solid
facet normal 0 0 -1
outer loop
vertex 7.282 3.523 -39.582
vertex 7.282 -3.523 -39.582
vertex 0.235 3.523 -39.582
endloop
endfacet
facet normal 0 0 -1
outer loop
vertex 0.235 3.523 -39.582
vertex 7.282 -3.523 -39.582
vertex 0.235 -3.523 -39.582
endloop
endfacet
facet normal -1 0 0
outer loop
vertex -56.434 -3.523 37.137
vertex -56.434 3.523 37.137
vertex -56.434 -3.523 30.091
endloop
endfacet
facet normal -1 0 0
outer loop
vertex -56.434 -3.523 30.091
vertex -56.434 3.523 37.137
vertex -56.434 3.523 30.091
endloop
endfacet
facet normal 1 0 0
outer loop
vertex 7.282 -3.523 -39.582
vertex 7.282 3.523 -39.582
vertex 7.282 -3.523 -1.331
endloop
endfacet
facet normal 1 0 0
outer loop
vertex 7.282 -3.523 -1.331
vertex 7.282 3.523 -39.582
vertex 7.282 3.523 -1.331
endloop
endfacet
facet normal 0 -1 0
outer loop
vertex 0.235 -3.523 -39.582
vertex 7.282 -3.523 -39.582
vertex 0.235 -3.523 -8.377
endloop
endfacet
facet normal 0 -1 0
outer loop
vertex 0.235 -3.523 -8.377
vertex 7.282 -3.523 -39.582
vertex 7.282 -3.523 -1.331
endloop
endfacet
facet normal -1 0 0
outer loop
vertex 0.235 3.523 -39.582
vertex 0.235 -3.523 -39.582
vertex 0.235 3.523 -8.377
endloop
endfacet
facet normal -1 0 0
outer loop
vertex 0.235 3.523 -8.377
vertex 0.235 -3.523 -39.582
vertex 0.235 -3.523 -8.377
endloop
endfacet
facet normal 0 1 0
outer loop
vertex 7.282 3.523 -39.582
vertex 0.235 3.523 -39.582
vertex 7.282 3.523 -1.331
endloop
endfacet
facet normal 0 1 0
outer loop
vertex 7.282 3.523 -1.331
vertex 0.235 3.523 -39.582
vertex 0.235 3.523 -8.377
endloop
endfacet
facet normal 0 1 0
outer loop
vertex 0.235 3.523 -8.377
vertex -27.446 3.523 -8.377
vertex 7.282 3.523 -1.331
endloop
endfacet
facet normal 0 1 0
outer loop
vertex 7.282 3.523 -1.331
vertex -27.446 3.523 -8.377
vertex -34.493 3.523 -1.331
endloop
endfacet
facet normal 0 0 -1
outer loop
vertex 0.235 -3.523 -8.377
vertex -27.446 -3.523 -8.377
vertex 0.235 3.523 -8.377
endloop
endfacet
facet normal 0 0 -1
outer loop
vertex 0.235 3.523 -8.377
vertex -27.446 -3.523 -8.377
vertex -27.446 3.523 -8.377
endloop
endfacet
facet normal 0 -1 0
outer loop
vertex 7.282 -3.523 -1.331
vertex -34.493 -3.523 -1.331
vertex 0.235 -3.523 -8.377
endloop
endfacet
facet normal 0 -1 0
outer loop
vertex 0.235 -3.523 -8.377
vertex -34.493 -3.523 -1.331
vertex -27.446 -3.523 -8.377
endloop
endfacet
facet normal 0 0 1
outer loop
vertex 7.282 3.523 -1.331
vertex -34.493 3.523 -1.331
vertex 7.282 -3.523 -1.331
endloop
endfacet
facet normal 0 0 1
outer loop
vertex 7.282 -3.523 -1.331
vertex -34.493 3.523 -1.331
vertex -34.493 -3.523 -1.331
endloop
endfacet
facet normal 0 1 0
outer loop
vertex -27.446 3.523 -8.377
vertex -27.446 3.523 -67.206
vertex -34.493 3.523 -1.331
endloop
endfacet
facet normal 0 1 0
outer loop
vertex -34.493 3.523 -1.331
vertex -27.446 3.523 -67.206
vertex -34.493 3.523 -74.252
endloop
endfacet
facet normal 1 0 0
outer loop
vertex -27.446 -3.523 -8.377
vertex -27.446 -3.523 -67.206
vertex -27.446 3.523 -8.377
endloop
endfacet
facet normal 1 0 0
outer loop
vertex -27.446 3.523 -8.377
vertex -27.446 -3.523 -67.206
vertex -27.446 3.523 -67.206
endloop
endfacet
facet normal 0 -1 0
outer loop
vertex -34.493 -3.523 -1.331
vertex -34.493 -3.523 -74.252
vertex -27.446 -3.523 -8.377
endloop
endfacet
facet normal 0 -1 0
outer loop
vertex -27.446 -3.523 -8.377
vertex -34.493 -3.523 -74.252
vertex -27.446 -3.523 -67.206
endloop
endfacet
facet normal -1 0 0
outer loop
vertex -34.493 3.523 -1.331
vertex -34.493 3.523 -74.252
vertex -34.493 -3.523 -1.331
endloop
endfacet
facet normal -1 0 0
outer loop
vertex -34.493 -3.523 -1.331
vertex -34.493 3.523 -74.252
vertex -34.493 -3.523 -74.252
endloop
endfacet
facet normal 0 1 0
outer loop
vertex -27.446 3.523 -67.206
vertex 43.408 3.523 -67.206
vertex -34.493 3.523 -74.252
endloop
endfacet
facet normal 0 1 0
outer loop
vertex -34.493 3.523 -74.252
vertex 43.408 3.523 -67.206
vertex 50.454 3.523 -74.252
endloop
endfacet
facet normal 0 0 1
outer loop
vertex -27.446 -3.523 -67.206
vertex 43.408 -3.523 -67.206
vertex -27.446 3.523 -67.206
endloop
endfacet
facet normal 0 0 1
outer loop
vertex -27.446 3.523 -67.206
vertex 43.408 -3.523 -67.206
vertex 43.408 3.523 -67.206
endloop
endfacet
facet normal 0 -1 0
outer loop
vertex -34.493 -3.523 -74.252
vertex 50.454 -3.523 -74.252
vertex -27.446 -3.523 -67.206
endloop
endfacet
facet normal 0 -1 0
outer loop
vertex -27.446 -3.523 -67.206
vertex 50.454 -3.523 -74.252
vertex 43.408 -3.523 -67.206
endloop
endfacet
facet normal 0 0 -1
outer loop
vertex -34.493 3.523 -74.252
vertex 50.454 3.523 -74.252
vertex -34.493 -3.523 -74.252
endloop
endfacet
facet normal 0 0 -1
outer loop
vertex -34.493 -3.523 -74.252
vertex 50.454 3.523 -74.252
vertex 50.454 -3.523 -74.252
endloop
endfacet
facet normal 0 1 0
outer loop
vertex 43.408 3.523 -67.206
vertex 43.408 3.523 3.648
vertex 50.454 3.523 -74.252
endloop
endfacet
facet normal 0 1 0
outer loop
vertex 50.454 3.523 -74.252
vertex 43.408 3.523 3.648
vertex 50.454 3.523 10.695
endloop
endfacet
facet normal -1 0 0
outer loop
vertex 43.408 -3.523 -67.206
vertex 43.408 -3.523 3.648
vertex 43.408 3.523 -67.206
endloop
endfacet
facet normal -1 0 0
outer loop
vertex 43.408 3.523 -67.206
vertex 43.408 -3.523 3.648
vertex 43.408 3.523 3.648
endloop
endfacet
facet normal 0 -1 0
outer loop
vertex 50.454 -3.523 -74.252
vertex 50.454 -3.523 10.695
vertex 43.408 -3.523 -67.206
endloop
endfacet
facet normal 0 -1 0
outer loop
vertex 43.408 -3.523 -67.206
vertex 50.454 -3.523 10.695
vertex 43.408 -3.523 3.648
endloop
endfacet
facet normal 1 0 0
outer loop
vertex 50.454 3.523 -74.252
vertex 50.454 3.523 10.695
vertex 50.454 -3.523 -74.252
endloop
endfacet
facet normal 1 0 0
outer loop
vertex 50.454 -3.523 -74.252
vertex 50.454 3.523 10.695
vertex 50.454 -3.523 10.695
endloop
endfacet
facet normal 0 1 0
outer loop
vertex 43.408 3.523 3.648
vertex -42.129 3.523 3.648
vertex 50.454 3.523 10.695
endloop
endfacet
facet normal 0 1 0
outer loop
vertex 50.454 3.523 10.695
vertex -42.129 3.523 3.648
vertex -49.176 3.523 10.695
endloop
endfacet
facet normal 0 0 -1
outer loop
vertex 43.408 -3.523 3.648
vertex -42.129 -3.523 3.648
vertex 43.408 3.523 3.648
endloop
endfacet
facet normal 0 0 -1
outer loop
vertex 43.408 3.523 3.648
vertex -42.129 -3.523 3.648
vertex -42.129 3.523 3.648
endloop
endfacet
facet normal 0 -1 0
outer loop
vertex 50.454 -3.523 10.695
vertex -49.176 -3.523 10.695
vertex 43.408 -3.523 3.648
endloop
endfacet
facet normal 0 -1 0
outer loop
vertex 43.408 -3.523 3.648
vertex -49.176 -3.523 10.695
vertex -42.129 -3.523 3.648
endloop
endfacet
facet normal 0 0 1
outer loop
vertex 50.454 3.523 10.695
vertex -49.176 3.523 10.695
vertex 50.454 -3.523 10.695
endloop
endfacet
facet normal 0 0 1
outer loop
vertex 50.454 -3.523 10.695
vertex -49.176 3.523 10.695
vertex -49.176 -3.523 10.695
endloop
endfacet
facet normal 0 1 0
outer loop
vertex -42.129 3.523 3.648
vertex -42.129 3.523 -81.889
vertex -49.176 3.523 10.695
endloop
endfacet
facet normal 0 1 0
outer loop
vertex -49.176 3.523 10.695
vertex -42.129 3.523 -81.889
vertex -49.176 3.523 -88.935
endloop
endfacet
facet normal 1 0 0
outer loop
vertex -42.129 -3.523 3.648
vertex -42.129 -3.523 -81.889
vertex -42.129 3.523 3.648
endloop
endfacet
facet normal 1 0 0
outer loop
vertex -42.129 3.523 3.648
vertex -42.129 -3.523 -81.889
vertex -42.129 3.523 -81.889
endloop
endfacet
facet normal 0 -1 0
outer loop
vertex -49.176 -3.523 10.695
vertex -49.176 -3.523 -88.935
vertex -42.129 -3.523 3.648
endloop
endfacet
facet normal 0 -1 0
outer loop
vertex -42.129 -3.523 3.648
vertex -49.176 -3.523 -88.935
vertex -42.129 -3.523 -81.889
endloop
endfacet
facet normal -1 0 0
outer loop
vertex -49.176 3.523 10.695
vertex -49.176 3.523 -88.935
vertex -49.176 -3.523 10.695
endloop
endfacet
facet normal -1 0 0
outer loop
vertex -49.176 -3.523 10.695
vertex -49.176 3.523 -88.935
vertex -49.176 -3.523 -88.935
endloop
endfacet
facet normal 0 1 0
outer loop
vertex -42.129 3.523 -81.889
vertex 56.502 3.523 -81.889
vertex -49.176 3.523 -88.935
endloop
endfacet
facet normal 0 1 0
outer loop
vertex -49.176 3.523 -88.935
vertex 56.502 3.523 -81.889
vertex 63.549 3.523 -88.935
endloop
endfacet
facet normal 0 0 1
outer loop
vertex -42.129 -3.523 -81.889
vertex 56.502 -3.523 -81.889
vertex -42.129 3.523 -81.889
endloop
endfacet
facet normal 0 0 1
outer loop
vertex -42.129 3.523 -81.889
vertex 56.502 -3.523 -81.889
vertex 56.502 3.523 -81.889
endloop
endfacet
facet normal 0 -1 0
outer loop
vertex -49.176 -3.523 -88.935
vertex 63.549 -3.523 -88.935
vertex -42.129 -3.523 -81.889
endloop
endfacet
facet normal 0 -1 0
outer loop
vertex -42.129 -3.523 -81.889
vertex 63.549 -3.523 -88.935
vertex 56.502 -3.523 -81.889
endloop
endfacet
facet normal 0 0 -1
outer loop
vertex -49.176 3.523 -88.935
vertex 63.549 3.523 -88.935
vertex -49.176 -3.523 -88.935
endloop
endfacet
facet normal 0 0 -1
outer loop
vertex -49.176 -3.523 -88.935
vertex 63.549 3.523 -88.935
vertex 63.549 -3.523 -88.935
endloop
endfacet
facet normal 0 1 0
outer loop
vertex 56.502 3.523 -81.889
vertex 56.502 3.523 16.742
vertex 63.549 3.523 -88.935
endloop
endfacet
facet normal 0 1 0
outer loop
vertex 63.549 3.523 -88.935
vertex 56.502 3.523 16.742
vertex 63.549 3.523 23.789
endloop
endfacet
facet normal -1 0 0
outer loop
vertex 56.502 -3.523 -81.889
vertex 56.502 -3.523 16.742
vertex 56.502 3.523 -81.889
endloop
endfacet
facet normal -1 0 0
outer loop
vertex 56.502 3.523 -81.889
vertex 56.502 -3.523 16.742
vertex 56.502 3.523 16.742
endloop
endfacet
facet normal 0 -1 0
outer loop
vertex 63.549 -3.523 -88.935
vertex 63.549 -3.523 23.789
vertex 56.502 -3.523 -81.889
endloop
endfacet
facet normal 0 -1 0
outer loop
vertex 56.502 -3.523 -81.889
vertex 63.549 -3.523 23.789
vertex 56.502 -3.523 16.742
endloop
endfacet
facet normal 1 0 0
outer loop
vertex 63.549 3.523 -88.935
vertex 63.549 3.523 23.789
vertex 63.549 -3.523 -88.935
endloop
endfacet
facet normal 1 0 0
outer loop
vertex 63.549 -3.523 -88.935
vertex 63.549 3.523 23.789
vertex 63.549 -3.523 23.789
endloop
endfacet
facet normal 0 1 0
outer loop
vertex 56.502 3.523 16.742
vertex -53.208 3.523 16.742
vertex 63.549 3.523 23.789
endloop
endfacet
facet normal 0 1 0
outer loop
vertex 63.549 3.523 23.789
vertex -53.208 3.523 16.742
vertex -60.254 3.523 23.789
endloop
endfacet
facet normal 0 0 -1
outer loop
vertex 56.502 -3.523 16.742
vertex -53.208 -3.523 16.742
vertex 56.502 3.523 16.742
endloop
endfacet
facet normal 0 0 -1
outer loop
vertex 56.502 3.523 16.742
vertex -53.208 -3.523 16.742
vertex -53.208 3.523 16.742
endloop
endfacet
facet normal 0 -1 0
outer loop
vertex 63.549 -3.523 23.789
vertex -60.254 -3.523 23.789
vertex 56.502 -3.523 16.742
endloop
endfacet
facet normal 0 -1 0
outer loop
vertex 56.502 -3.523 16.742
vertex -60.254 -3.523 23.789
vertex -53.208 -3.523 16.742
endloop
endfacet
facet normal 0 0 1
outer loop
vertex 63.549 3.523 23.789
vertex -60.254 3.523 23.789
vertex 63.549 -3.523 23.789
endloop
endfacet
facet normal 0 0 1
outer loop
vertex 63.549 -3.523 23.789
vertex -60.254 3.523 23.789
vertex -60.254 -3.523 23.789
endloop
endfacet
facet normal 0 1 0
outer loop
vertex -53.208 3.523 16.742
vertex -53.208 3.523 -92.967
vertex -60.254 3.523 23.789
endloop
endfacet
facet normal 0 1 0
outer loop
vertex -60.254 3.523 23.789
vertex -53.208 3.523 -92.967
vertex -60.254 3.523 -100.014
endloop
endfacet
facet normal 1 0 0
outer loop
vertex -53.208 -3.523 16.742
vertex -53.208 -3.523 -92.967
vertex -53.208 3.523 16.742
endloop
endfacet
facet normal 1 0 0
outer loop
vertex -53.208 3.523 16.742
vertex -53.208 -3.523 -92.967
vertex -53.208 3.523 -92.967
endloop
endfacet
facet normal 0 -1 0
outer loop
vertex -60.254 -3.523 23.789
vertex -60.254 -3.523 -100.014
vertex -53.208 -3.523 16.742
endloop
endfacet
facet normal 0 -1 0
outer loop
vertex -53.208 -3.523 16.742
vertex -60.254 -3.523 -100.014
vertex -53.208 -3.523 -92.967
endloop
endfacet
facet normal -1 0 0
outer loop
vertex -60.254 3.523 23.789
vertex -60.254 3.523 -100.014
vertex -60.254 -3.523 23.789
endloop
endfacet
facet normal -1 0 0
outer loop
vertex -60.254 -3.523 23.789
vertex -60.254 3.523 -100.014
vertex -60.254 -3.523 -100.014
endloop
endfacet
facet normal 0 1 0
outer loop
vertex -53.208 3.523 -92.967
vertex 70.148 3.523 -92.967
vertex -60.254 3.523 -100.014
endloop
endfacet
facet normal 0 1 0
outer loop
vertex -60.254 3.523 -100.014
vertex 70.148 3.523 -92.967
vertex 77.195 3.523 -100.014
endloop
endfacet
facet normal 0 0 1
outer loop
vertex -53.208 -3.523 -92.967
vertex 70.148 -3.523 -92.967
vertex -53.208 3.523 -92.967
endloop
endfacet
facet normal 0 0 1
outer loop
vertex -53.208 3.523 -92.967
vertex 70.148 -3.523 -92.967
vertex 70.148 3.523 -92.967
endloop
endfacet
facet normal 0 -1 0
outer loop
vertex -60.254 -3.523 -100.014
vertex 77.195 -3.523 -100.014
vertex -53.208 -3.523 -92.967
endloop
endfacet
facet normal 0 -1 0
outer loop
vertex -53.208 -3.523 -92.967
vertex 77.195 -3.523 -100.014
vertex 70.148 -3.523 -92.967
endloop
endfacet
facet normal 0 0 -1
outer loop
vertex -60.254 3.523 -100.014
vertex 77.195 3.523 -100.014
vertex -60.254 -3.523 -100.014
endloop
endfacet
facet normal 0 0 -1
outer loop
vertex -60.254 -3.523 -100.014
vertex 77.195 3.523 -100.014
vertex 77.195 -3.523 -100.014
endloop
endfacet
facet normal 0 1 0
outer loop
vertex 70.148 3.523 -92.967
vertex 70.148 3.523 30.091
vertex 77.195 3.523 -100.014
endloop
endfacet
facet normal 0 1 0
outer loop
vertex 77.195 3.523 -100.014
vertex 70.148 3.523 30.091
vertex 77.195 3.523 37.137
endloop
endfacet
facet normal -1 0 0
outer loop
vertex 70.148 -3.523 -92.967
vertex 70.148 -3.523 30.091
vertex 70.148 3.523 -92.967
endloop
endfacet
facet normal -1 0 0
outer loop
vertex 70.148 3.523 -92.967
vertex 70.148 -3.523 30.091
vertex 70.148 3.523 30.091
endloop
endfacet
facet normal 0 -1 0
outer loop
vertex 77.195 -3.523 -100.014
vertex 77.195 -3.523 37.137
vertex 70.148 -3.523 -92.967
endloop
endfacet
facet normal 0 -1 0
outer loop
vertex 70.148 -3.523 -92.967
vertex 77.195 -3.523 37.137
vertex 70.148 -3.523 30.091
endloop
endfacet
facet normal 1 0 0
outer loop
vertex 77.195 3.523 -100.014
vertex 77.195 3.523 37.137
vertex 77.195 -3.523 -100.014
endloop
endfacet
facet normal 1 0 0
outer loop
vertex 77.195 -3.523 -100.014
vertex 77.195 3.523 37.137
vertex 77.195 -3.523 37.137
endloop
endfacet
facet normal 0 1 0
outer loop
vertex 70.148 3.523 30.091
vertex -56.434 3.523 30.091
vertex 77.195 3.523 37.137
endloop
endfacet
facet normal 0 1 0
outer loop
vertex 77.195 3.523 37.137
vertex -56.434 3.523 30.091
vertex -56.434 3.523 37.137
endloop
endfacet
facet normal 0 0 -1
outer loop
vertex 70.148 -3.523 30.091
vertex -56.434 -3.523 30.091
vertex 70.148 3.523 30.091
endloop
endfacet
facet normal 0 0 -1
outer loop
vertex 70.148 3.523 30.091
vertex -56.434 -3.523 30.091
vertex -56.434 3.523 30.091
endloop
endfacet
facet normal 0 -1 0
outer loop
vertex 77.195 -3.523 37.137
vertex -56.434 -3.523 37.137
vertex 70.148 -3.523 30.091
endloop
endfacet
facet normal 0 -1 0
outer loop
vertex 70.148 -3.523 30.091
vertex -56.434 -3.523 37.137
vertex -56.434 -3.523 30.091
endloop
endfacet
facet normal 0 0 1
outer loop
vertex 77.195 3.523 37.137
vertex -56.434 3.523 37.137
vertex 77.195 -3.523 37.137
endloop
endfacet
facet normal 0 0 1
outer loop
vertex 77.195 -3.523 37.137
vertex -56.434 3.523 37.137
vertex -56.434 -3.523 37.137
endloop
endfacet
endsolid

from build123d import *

# Parameters (mm, degrees)
SKETCH3_W = 7.046537748
SKETCH3_H = 7.046537748


with BuildPart() as part:
    # Sweep1: sweep along a path in Sketch2
    with BuildLine(Plane(origin=(0, 0, 0), x_dir=(1, 0, 0), z_dir=(0, 1, 0))) as sweep1_path:
        Line((-56.433512337, -33.614206506), (73.671403243, -33.614206506))
        Line((73.671403243, -33.614206506), (73.671403243, 96.490709074))
        Line((73.671403243, 96.490709074), (-56.731082257, 96.490709074))
        Line((-56.731082257, 96.490709074), (-56.731082257, -20.265698264))
        Line((-56.731082257, -20.265698264), (60.025325081, -20.265698264))
        Line((60.025325081, -20.265698264), (60.025325081, 85.412146694))
        Line((60.025325081, 85.412146694), (-45.652519877, 85.412146694))
        Line((-45.652519877, 85.412146694), (-45.652519877, -7.17127309))
        Line((-45.652519877, -7.17127309), (46.930899908, -7.17127309))
        Line((46.930899908, -7.17127309), (46.930899908, 70.729135959))
        Line((46.930899908, 70.729135959), (-30.969509142, 70.729135959))
        Line((-30.969509142, 70.729135959), (-30.969509142, 4.853856027))
        Line((-30.969509142, 4.853856027), (3.758736239, 4.853856027))
        Line((3.758736239, 4.853856027), (3.758736239, 39.582101408))
    # Sketch3 → Sweep1 (sweep)
    with BuildSketch(Plane(origin=(-56.433512337, 0, 0), x_dir=(0, 0, -1), z_dir=(1, 0, 0))):
        with Locations((-33.614206506, 0)):
            Rectangle(SKETCH3_W, SKETCH3_H)
    sweep(path=sweep1_path.line, transition=Transition.RIGHT)


solid = part.part
